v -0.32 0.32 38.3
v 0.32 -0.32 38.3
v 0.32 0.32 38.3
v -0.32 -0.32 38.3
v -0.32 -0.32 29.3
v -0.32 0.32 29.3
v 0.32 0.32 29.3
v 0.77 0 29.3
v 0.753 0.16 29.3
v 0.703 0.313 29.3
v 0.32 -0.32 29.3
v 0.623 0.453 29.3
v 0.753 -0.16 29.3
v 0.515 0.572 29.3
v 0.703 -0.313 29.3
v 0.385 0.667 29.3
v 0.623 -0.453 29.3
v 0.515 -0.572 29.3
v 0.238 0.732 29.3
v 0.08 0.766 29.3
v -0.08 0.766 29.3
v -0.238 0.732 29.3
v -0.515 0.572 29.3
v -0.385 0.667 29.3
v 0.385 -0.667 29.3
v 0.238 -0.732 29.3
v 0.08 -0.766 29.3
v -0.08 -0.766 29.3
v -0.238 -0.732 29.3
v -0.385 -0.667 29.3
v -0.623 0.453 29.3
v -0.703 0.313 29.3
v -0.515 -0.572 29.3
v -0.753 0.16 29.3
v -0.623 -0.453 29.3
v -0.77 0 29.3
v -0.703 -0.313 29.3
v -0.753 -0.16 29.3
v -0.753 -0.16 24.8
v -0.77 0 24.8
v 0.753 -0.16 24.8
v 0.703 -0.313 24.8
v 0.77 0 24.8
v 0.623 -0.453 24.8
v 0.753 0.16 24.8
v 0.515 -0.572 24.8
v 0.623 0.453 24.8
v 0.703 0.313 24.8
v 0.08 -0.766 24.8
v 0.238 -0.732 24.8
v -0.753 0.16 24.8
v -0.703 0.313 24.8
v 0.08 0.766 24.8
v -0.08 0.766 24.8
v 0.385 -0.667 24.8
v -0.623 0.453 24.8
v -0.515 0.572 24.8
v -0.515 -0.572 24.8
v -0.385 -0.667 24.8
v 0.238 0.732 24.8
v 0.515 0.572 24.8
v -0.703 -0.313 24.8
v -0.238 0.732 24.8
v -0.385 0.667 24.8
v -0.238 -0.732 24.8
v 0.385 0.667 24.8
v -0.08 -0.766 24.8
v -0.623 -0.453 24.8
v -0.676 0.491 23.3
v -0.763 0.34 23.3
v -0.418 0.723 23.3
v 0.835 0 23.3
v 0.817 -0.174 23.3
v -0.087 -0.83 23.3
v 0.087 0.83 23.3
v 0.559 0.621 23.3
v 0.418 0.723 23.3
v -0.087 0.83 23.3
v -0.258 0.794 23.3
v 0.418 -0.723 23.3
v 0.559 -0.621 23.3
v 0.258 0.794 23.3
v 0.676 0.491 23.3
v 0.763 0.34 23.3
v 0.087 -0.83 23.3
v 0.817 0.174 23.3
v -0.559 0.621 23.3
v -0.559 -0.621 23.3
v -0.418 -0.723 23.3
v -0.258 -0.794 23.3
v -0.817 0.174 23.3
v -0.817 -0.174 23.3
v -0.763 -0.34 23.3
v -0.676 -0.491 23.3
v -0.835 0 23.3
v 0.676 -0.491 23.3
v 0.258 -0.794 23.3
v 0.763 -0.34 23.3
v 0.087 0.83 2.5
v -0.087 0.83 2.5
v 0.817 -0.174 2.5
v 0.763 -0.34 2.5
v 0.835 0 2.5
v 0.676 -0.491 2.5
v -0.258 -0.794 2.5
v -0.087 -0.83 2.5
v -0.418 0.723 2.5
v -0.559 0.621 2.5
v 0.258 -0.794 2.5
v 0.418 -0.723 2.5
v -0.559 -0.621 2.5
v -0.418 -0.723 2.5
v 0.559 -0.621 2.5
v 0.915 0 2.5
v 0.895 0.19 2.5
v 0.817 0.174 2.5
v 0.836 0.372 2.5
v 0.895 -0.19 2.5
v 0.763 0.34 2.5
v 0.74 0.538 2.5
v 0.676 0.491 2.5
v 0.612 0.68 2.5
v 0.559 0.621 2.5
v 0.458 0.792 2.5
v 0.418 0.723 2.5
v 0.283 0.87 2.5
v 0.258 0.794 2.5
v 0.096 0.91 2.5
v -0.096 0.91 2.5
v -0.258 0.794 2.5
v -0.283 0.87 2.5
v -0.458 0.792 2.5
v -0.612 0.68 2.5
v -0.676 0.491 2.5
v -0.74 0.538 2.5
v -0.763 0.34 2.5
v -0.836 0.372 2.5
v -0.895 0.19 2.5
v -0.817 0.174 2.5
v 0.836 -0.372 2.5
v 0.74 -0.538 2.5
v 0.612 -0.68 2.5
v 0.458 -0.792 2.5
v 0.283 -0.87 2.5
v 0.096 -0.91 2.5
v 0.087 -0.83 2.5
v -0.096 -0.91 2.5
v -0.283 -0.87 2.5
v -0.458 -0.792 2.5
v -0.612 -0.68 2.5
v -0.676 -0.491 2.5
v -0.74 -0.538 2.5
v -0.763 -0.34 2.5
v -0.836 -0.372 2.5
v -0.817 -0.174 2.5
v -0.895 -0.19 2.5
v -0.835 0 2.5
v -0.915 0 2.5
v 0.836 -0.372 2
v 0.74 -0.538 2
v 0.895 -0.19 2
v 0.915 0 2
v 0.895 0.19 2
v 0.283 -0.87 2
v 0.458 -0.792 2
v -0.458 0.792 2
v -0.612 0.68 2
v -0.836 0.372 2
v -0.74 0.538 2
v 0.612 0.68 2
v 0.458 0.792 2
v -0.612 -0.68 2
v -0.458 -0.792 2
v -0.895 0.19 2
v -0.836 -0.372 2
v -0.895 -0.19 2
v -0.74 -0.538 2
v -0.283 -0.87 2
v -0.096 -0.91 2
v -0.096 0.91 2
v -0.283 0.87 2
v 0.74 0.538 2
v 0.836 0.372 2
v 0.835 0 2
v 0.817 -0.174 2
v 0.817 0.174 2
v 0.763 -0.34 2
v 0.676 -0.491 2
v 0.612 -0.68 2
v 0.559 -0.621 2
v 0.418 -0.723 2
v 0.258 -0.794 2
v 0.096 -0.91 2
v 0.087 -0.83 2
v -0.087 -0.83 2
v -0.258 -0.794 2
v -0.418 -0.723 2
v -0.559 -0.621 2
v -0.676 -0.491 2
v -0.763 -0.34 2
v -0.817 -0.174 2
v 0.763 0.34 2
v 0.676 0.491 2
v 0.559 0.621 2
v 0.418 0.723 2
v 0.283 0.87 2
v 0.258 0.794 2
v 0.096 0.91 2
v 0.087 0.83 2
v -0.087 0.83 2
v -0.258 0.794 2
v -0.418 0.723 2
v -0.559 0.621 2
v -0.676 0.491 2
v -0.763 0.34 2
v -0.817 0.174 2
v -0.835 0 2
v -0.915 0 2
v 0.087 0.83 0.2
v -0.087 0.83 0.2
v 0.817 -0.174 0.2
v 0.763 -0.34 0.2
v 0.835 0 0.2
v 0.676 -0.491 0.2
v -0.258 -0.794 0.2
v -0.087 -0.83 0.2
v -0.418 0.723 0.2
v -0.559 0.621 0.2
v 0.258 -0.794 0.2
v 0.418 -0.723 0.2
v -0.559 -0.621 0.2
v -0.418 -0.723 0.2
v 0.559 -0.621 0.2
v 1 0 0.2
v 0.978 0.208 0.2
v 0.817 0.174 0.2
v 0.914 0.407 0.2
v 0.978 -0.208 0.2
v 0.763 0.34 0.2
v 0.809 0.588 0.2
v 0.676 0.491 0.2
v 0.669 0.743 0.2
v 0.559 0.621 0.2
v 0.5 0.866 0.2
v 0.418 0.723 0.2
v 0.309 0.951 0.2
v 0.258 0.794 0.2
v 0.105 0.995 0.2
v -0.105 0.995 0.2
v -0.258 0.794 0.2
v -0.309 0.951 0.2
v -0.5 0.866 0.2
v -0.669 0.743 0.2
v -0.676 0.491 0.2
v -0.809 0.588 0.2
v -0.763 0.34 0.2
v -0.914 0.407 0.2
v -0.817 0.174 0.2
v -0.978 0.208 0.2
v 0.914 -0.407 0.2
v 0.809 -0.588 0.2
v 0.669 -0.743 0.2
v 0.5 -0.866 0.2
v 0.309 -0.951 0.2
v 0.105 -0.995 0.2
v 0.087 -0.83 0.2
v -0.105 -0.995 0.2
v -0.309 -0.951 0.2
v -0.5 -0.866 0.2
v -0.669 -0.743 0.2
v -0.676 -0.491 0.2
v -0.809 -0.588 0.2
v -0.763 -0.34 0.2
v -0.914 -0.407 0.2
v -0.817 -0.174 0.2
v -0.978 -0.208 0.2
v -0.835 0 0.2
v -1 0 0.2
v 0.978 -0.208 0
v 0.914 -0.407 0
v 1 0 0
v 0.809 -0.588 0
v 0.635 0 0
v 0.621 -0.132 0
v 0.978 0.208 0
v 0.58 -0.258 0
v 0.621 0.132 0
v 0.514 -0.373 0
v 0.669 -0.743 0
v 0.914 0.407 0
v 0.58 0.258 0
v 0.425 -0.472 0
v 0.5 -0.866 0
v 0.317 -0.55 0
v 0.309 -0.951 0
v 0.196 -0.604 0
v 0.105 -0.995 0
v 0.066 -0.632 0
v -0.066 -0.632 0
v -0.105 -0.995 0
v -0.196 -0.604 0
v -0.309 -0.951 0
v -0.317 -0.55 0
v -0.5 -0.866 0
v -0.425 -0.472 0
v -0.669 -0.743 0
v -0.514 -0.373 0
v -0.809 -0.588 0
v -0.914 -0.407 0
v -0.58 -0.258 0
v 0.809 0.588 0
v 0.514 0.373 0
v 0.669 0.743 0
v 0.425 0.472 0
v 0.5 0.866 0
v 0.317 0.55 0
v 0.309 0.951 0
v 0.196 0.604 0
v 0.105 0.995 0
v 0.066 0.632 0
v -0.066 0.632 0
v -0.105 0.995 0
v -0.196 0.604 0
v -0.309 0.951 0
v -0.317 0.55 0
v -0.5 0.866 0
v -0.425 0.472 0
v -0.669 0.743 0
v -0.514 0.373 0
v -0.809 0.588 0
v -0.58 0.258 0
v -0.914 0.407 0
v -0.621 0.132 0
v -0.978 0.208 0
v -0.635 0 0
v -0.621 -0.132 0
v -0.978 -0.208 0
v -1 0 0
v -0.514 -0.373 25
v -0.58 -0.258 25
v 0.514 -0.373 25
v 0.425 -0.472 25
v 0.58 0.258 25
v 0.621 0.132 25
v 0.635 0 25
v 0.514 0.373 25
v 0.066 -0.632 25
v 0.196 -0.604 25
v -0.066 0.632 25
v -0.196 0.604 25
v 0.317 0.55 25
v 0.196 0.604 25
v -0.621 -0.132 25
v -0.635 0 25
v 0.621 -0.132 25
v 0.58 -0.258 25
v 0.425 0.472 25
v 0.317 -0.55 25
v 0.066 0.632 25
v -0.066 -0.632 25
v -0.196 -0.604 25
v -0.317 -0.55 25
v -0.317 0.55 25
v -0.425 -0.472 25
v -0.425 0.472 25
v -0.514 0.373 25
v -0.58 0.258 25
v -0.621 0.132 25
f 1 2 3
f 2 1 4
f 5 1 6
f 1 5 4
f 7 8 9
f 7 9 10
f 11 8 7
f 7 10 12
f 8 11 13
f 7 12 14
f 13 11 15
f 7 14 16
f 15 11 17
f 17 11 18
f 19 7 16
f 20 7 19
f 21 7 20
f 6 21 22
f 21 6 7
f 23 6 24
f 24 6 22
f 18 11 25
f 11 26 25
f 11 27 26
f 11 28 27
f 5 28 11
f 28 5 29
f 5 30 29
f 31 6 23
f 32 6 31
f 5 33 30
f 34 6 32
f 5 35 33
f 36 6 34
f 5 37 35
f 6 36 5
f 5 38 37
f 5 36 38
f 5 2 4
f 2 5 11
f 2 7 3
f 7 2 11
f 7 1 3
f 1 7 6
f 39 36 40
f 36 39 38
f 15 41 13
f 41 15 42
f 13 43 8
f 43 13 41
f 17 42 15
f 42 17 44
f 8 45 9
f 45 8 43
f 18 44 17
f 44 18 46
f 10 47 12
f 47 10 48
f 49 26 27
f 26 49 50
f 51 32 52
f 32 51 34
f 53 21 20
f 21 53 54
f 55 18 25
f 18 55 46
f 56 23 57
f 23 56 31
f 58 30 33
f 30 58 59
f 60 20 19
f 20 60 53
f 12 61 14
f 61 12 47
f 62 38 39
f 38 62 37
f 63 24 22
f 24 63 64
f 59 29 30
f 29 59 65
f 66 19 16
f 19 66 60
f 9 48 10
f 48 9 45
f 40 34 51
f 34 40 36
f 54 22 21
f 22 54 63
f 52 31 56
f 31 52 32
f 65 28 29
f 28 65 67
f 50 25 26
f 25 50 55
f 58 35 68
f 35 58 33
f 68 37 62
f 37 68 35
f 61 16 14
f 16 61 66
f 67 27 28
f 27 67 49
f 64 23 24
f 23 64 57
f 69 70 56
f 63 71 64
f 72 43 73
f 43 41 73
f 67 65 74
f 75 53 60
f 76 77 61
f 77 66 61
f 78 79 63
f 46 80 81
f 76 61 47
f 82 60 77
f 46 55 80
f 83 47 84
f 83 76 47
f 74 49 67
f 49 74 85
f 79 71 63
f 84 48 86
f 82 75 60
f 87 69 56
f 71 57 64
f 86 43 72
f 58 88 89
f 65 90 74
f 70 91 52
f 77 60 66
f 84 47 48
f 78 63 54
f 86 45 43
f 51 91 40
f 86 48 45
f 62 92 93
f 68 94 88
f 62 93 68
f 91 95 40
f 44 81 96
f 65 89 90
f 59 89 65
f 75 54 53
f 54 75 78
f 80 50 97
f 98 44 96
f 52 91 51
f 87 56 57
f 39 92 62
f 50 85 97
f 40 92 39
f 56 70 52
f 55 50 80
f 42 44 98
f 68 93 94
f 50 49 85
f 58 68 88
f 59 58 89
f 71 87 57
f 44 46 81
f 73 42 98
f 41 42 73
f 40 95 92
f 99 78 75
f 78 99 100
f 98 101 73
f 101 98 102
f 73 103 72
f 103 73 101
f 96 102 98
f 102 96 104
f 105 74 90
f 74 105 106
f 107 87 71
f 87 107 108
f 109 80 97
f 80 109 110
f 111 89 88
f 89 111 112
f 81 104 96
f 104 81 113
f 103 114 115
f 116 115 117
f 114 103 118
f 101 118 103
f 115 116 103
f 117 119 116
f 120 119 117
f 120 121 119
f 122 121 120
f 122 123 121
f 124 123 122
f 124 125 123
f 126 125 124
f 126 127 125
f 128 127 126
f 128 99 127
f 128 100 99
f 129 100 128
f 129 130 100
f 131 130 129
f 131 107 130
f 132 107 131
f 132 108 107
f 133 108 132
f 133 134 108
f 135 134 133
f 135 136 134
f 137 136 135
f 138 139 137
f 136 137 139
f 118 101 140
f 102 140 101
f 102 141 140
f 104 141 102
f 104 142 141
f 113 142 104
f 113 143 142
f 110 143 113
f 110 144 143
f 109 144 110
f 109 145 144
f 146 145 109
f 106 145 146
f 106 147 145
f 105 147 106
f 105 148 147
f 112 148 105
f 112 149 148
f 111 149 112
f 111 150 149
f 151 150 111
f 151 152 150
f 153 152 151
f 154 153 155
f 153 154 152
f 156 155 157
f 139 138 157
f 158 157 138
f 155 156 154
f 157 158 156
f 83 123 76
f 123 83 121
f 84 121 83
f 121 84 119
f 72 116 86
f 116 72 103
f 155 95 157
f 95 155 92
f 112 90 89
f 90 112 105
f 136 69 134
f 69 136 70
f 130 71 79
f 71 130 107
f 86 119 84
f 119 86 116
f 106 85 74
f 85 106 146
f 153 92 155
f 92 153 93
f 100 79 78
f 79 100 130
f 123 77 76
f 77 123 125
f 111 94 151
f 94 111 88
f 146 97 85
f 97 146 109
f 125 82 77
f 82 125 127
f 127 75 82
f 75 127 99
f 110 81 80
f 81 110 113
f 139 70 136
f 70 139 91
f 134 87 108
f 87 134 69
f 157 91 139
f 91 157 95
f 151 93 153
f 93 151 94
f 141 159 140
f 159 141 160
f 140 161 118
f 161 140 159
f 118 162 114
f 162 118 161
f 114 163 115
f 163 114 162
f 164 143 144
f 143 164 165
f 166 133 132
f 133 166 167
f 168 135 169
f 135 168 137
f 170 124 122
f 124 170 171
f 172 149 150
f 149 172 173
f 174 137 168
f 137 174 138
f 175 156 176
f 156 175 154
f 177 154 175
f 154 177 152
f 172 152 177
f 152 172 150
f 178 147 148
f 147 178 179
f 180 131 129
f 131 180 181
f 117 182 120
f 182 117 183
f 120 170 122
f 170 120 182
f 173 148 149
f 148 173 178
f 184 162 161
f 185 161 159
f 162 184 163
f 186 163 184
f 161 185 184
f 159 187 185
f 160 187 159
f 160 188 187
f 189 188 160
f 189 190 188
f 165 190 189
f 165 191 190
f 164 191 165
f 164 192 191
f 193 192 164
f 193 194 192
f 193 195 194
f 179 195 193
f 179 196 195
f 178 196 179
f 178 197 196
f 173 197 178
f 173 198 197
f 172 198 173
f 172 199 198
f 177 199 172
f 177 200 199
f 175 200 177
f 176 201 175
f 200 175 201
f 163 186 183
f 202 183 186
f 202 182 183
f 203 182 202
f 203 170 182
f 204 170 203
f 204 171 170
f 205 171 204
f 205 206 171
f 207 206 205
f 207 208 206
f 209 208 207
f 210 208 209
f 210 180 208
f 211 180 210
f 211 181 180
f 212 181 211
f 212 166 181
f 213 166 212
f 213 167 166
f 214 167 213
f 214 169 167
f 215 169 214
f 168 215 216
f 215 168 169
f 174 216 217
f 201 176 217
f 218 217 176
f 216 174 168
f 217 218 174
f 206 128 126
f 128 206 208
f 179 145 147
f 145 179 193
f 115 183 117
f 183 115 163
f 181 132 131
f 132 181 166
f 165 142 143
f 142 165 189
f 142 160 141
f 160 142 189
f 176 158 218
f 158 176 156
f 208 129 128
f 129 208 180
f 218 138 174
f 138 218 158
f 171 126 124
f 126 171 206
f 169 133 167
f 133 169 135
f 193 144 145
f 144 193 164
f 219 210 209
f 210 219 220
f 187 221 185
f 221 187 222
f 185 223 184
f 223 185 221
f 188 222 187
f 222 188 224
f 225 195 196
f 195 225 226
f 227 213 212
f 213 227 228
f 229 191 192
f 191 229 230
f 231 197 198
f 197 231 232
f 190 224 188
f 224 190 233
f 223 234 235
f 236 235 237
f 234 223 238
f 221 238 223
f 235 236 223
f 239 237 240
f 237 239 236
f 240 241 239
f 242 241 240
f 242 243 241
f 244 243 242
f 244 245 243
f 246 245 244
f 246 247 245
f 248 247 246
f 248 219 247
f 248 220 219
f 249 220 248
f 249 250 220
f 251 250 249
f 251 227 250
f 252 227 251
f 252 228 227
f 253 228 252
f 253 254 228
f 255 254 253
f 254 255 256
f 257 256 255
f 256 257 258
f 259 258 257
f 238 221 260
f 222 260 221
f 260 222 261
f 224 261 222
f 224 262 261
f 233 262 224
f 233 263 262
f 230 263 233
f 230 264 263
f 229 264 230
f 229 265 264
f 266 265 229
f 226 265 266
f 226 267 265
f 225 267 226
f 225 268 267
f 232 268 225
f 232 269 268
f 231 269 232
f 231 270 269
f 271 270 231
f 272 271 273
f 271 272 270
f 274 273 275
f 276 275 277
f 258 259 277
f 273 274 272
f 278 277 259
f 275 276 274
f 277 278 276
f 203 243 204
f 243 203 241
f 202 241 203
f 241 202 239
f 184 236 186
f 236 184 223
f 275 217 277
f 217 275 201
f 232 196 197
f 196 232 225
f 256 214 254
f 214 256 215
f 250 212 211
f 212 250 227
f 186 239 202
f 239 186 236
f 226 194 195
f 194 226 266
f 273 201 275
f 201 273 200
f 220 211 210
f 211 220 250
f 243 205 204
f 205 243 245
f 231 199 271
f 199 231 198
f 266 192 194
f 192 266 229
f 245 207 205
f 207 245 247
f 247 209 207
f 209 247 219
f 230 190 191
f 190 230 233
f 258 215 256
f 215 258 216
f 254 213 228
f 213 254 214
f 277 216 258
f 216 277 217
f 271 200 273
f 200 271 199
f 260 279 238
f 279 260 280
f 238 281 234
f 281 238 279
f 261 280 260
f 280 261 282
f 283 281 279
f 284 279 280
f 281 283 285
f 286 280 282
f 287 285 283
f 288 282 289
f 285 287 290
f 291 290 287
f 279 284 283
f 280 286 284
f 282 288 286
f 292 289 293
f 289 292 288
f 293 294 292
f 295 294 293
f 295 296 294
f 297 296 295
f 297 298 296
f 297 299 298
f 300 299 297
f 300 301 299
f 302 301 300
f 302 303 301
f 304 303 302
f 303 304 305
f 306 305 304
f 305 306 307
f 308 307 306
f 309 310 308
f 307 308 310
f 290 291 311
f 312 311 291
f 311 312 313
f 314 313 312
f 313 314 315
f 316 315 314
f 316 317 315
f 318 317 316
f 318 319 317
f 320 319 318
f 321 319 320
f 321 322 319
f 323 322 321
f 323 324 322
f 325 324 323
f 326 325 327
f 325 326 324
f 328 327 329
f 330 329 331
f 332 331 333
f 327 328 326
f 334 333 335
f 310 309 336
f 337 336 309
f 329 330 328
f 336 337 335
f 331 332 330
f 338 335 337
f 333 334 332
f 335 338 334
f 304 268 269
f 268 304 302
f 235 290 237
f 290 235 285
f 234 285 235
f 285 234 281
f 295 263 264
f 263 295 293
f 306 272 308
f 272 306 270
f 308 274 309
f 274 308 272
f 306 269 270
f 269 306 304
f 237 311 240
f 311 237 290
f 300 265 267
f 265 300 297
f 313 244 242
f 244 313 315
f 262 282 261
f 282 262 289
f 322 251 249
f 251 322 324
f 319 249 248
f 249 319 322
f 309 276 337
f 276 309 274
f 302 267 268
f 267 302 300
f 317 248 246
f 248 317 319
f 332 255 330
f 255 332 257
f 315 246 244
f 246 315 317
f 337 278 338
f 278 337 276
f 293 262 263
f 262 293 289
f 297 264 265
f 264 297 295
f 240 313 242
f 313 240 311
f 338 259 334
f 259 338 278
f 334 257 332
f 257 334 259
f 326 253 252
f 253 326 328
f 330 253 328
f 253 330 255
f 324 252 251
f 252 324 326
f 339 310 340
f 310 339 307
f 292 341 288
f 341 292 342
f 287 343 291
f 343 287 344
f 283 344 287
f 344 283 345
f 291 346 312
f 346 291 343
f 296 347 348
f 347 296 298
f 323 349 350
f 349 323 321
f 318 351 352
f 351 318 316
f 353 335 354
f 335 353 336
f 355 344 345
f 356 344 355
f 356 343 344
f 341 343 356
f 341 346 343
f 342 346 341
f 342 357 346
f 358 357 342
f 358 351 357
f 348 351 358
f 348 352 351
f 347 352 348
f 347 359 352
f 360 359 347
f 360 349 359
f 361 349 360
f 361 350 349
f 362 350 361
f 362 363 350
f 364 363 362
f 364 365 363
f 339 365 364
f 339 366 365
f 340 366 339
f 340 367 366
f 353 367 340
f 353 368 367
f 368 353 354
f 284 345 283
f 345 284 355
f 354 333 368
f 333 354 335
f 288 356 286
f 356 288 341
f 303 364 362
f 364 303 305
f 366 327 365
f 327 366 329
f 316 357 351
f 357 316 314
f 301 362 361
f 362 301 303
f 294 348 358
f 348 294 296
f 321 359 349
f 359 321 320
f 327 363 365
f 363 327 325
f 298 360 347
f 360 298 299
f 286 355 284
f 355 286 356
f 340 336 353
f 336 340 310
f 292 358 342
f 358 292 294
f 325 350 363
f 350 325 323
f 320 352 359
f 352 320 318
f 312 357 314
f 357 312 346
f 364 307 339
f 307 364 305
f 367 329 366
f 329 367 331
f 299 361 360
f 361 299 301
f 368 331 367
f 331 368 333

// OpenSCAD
/* [Dimensions] */
base_length = 9;
base_side = 0.64;
crimp_diameter = 1.54;
crimp_length = 4.5;
taper_length = 1.5;
shaft_diameter = 1.67;
total_length = 38.3;
top_ring_length = 0.2;
top_ring_diameter = 2;
bottom_ring_length = 0.5;
bottom_ring_diameter = 1.83;
ring_separation = 2.5;

/* [Variables] */
through_all_height = 1000;


module R100_2W_frame(){
    /*
    Square base
    Crimped section connecting the shaft to the base
    Tapered section expanding to the shaft thickness
    cylindrical shaft
    Bottom ring
    shaft
    top ring
    
    linearly extrude from the base.
    */
    translate([0,0,total_length]) {
    rotate(180, [1, 0, 0]) {
    
    // z=0
    linear_extrude(base_length)
        square(base_side, center=true);
    
    // crimp
    //z=base_length
    translate([0,0,base_length])cylinder(crimp_length, d=crimp_diameter,center=false);
    
    //  taper
    // z=base_length+crimp_length
    translate([0,0,base_length+crimp_length])cylinder(taper_length, d2=shaft_diameter, d1=crimp_diameter ,center=false);

    //  bottom shaft    
    // z=base_length+crimp_length+taper_length
    bottom_shaft_length=total_length-(taper_length+base_length+crimp_length+ring_separation);
     
    echo(bottom_shaft_length);
    //assert(bottom_shaft_length==20.8);
    translate([0,0,base_length+crimp_length+taper_length])cylinder(bottom_shaft_length, d=shaft_diameter,center=false);
    
    //  bottom ring
    // z=base_length+crimp_length+taper_length + bottom_shaft_length
    translate([0,0,base_length+crimp_length+taper_length+bottom_shaft_length])cylinder(bottom_ring_length, d=bottom_ring_diameter,center=false);
    
    //  ring separation shaft
    //  z=base_length+crimp_length+taper_length + bottom_shaft_length+bottom_ring_length
    //  ring_separation is bottom of bottom to top of top

    ring_separation_shaft_length = ring_separation-top_ring_length-bottom_ring_length;
    translate([0,0,base_length+crimp_length+taper_length+bottom_shaft_length+bottom_ring_length])cylinder(ring_separation_shaft_length, d=shaft_diameter,center=false);
    
    
    // top ring
    //z=base_length+crimp_length+taper_length + bottom_shaft_length+ring_separation-bottom_ring_length-top_ring_length
    translate([0,0,total_length-top_ring_length])cylinder(top_ring_length, d=top_ring_diameter,center=false);
    
    //color("yellow")
    //translate([0,0,7.8+7.62])cylinder(h=1,d=1.46,center=false);
    z=base_length+crimp_length+taper_length + bottom_shaft_length+ring_separation;
    echo(z);
    };
    };
}

module R100_2W(){
    //  Put hole in model
    difference(){
        R100_2W_frame();
        hole_depth=25;
        cylinder(d=1.27, h=2*hole_depth, center=true);
    };
}


module ate_probe_hole(x, y, z) {    
    ate_shaft_diameter = shaft_diameter;
    ate_bottom_lip_diameter = bottom_ring_diameter;
    ate_top_lip_diameter = top_ring_diameter;
    ate_lip_separation = ring_separation; //  center to center

    echo(ate_shaft_diameter, ate_bottom_lip_diameter, ate_top_lip_diameter, ate_lip_separation);
    
    hole_size_margin = 0.1;
    shaft_hole_diameter = ate_shaft_diameter + hole_size_margin;
    bottom_lip_hole_diameter = ate_bottom_lip_diameter + hole_size_margin;
    top_lip_hole_diameter = ate_top_lip_diameter + hole_size_margin;
    
    //  through all holes, is symetrical and large
    translate([x, y, 0])cylinder(h=through_all_height, d=shaft_hole_diameter, center=true);
    
    //  top dimple wider bore, starts from the depth passed in and cuts up
    top_counter_bore_depth = z;  //  tell the function where we want to top of the pin to be
    translate([x, y, top_counter_bore_depth])cylinder(h=through_all_height, d=top_lip_hole_diameter, center=false);

    //  bottom dimple narrower bore, starts from the depth of the upper minus the separation
    bottom_counter_bore_depth = z - ate_lip_separation;
    translate([x, y, bottom_counter_bore_depth])cylinder(h=through_all_height, d=bottom_lip_hole_diameter, center=false);
};

/* Define the hole that needs to be cut for this socket */
module R100_2W_pinhole() {
    ate_probe_hole(0,0,0);
}

$fs=0.1;
R100_2W();
